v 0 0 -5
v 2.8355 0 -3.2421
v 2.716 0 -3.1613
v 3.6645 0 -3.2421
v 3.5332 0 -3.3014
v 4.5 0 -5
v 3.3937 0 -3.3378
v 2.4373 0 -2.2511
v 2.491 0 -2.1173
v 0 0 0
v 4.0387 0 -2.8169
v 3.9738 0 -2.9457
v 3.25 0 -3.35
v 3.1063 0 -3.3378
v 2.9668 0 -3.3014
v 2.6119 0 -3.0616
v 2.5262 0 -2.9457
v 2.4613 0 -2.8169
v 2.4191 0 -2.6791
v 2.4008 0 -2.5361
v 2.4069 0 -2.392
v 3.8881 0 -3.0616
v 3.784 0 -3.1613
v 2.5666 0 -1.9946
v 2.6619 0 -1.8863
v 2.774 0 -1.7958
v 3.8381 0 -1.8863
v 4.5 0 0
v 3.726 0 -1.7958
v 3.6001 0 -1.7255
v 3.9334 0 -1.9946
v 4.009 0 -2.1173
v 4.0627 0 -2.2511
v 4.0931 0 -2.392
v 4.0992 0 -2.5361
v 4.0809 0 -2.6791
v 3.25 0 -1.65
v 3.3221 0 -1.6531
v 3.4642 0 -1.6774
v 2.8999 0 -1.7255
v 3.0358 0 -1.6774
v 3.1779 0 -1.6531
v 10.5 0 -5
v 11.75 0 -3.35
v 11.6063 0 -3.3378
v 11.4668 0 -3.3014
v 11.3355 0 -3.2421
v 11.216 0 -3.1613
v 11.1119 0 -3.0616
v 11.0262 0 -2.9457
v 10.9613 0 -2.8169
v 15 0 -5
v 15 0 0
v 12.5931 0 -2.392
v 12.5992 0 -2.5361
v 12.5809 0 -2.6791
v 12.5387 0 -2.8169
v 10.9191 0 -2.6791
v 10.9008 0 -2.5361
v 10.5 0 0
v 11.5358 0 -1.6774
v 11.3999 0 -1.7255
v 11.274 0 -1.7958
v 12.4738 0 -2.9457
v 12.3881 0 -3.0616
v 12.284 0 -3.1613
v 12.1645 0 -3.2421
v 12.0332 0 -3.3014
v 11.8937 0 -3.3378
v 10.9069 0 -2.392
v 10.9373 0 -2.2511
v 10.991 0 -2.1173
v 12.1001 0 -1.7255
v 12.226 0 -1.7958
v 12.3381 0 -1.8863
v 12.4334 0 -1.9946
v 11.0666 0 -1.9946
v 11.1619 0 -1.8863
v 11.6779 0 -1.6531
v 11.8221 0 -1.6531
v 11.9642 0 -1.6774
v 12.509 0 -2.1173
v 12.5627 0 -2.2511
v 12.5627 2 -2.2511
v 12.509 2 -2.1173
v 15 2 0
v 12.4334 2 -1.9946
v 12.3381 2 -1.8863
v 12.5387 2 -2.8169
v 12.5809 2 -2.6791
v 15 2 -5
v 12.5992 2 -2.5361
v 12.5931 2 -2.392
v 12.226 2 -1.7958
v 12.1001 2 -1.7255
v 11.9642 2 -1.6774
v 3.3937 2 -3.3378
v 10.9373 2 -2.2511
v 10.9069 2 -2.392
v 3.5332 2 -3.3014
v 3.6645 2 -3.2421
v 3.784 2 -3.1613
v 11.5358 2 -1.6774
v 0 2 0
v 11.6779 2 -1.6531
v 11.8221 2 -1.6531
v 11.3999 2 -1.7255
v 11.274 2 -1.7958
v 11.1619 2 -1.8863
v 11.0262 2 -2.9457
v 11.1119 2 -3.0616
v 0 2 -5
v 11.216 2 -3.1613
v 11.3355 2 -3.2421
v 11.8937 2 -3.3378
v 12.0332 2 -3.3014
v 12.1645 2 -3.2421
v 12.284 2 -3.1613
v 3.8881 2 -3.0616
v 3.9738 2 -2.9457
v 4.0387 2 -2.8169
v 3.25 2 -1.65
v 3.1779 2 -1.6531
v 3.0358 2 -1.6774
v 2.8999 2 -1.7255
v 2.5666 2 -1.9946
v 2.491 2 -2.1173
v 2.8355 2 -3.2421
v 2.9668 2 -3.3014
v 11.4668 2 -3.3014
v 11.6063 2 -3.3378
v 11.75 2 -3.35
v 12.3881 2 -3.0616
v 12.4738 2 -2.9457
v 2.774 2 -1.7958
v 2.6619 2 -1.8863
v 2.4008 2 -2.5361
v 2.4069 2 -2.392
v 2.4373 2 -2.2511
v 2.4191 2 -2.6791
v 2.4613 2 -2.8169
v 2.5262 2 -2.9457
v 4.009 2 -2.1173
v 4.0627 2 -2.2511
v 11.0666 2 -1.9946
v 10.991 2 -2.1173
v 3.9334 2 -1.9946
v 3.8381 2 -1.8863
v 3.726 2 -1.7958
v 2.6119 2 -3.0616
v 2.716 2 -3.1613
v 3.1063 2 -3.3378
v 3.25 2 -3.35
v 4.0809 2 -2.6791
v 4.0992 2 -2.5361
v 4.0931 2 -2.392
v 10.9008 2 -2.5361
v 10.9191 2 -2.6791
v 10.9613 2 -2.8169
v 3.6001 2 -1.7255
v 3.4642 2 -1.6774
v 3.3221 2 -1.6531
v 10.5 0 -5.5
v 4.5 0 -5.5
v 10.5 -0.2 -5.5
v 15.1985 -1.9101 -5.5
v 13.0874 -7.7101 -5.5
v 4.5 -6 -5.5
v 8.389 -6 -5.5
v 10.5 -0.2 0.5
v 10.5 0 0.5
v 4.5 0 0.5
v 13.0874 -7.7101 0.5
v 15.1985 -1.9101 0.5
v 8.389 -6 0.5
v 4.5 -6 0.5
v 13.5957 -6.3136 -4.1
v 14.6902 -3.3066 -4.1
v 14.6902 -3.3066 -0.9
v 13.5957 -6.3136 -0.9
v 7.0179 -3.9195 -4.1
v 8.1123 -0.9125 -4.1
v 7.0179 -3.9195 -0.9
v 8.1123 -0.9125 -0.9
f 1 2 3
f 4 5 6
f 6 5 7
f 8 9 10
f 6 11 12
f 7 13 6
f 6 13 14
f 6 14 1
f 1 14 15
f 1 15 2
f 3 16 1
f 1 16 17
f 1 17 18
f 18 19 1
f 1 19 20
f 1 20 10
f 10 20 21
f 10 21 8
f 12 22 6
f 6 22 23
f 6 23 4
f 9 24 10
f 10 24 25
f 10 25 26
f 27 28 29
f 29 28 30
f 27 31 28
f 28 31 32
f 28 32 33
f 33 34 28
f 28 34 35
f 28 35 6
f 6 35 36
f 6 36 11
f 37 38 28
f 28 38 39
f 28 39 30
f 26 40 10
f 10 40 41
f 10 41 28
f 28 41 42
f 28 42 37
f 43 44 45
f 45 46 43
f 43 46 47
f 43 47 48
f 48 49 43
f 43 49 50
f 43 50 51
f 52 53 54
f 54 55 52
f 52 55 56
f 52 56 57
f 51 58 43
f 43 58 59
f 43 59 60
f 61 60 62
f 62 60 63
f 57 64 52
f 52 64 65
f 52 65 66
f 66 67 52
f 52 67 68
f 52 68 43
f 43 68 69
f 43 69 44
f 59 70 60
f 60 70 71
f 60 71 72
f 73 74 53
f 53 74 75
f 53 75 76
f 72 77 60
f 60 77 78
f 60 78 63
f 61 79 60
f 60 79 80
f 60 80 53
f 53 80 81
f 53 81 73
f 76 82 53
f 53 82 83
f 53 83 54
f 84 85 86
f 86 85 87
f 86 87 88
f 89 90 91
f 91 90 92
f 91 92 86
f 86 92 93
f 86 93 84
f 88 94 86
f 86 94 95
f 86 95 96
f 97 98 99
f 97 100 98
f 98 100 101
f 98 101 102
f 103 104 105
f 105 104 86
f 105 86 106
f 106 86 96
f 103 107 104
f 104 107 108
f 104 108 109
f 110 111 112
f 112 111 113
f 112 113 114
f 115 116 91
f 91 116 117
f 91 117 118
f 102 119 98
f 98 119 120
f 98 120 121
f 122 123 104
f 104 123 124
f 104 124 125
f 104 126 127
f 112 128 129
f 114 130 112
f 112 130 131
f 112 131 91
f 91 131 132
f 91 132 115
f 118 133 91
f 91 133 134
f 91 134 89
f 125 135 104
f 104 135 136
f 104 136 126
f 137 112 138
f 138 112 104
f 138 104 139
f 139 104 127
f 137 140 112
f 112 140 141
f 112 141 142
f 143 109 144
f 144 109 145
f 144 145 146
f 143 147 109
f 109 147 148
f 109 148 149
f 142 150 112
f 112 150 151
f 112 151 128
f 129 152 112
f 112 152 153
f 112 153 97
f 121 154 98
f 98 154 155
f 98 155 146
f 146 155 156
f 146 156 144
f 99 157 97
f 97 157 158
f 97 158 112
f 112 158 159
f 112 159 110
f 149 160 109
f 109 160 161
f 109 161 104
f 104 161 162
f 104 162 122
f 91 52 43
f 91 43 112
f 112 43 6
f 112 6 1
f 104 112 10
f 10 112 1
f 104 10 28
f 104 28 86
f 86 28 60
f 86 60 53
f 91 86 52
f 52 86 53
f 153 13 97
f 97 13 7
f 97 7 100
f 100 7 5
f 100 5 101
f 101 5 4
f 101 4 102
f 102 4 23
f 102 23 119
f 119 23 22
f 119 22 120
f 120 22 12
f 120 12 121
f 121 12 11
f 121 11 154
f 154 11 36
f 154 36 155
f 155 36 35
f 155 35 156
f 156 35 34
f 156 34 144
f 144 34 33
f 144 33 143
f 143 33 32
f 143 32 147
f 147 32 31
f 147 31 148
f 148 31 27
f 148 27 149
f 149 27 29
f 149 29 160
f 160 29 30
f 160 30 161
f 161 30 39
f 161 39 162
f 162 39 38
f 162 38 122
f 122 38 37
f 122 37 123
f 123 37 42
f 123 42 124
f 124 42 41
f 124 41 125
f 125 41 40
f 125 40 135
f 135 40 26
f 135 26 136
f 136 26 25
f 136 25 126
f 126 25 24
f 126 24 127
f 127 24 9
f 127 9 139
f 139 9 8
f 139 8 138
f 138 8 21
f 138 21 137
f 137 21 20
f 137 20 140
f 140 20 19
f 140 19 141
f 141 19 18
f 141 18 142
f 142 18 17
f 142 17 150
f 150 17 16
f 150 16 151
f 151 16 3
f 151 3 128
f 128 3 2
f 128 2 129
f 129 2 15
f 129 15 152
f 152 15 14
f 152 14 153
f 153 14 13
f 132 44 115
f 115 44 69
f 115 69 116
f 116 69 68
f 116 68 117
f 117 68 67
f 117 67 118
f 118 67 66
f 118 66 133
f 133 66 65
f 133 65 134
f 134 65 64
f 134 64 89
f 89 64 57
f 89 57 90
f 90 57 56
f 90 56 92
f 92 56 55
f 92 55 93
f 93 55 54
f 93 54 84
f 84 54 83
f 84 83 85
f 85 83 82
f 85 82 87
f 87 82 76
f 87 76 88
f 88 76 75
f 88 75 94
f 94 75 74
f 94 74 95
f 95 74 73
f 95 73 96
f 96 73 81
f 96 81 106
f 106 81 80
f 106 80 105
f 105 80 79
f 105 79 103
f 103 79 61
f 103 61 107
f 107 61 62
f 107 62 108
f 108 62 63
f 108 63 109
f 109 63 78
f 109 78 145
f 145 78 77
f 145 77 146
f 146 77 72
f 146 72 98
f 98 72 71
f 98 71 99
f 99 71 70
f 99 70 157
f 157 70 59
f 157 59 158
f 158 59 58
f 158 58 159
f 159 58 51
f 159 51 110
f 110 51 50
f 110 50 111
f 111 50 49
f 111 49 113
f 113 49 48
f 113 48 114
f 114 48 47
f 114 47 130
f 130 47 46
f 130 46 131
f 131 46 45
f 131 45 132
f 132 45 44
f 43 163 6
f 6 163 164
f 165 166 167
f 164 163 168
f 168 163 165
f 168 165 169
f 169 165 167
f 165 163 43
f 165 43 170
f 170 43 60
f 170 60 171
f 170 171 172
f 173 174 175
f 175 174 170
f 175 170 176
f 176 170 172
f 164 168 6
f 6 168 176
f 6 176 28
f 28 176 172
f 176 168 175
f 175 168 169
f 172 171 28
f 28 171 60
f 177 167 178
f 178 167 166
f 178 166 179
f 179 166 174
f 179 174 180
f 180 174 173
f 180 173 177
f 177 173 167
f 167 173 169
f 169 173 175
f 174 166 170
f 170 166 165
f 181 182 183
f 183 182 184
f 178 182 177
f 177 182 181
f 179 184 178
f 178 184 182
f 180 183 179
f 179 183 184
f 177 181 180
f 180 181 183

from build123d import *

# Parameters (mm, degrees)
SKETCH_1_W          = 15
SKETCH_1_H          = 5
SKETCH_1_R          = 0.85
EXTRUDE_1_DEPTH     = 2
SKETCH_2_W          = 6
SKETCH_2_H          = 6
EXTRUDE_3_DEPTH     = 6
CUT_EXTRUDE_2_DEPTH = 6
SKETCH_7_W          = 3.2
SKETCH_7_H          = 3.2
CUT_EXTRUDE_3_DEPTH = 2
SKETCH_10_W         = 6
SKETCH_10_H         = 6.172231081
SKETCH_10_W_2       = 3.2
SKETCH_10_H_2       = 3.2
EXTRUDE_4_DEPTH     = 5


with BuildPart() as part:
    # 草图1 → 凸台-拉伸1 (new body)
    with BuildSketch(Plane(origin=(0, 0, 0), x_dir=(1, 0, 0), z_dir=(0, 1, 0))):
        with Locations((7.5, 2.5)):
            Rectangle(SKETCH_1_W, SKETCH_1_H)
        with Locations(Location((3.25, 2.5, 0), (0, 0, 270))):
            Circle(SKETCH_1_R, mode=Mode.SUBTRACT)
        with Locations(Location((11.75, 2.5, 0), (0, 0, 90))):
            Circle(SKETCH_1_R, mode=Mode.SUBTRACT)
    extrude(amount=EXTRUDE_1_DEPTH)

    # 草图2 → 凸台-拉伸3 (add)
    with BuildSketch(Plane.XZ):
        with Locations((7.5, -2.5)):
            Rectangle(SKETCH_2_W, SKETCH_2_H)
    extrude(amount=EXTRUDE_3_DEPTH)

    # 草图6 → 切除-拉伸2 (cut)
    with BuildSketch(Plane(origin=(0, 0, -5.5), x_dir=(-1, 0, 0), z_dir=(0, 0, -1))):
        Polygon((-10.5, -0.2), (-10.5, -6), (-8.388972641, -6), align=None)
    extrude(amount=-CUT_EXTRUDE_2_DEPTH, mode=Mode.SUBTRACT)

    # 草图7 → 切除-拉伸3 (cut)
    with BuildSketch(Plane(origin=(9.336012087, -3.398030507, 0), x_dir=(0, 0, -1), z_dir=(0.9396926207859104, -0.3420201433256631, 0))):
        with Locations((2.5, 0.317157441)):
            Rectangle(SKETCH_7_W, SKETCH_7_H)
    extrude(amount=-CUT_EXTRUDE_3_DEPTH, mode=Mode.SUBTRACT)

    # 草图10 → 凸台-拉伸4 (add)
    with BuildSketch(Plane(origin=(9.336012087, -3.398030507, 0), x_dir=(0, 0, -1), z_dir=(0.9396926207859104, -0.3420201433256631, 0))):
        with Locations((2.5, 0.31715744)):
            Rectangle(SKETCH_10_W, SKETCH_10_H)
        with Locations((2.5, 0.317157441)):
            Rectangle(SKETCH_10_W_2, SKETCH_10_H_2, mode=Mode.SUBTRACT)
    extrude(amount=EXTRUDE_4_DEPTH)


solid = part.part
